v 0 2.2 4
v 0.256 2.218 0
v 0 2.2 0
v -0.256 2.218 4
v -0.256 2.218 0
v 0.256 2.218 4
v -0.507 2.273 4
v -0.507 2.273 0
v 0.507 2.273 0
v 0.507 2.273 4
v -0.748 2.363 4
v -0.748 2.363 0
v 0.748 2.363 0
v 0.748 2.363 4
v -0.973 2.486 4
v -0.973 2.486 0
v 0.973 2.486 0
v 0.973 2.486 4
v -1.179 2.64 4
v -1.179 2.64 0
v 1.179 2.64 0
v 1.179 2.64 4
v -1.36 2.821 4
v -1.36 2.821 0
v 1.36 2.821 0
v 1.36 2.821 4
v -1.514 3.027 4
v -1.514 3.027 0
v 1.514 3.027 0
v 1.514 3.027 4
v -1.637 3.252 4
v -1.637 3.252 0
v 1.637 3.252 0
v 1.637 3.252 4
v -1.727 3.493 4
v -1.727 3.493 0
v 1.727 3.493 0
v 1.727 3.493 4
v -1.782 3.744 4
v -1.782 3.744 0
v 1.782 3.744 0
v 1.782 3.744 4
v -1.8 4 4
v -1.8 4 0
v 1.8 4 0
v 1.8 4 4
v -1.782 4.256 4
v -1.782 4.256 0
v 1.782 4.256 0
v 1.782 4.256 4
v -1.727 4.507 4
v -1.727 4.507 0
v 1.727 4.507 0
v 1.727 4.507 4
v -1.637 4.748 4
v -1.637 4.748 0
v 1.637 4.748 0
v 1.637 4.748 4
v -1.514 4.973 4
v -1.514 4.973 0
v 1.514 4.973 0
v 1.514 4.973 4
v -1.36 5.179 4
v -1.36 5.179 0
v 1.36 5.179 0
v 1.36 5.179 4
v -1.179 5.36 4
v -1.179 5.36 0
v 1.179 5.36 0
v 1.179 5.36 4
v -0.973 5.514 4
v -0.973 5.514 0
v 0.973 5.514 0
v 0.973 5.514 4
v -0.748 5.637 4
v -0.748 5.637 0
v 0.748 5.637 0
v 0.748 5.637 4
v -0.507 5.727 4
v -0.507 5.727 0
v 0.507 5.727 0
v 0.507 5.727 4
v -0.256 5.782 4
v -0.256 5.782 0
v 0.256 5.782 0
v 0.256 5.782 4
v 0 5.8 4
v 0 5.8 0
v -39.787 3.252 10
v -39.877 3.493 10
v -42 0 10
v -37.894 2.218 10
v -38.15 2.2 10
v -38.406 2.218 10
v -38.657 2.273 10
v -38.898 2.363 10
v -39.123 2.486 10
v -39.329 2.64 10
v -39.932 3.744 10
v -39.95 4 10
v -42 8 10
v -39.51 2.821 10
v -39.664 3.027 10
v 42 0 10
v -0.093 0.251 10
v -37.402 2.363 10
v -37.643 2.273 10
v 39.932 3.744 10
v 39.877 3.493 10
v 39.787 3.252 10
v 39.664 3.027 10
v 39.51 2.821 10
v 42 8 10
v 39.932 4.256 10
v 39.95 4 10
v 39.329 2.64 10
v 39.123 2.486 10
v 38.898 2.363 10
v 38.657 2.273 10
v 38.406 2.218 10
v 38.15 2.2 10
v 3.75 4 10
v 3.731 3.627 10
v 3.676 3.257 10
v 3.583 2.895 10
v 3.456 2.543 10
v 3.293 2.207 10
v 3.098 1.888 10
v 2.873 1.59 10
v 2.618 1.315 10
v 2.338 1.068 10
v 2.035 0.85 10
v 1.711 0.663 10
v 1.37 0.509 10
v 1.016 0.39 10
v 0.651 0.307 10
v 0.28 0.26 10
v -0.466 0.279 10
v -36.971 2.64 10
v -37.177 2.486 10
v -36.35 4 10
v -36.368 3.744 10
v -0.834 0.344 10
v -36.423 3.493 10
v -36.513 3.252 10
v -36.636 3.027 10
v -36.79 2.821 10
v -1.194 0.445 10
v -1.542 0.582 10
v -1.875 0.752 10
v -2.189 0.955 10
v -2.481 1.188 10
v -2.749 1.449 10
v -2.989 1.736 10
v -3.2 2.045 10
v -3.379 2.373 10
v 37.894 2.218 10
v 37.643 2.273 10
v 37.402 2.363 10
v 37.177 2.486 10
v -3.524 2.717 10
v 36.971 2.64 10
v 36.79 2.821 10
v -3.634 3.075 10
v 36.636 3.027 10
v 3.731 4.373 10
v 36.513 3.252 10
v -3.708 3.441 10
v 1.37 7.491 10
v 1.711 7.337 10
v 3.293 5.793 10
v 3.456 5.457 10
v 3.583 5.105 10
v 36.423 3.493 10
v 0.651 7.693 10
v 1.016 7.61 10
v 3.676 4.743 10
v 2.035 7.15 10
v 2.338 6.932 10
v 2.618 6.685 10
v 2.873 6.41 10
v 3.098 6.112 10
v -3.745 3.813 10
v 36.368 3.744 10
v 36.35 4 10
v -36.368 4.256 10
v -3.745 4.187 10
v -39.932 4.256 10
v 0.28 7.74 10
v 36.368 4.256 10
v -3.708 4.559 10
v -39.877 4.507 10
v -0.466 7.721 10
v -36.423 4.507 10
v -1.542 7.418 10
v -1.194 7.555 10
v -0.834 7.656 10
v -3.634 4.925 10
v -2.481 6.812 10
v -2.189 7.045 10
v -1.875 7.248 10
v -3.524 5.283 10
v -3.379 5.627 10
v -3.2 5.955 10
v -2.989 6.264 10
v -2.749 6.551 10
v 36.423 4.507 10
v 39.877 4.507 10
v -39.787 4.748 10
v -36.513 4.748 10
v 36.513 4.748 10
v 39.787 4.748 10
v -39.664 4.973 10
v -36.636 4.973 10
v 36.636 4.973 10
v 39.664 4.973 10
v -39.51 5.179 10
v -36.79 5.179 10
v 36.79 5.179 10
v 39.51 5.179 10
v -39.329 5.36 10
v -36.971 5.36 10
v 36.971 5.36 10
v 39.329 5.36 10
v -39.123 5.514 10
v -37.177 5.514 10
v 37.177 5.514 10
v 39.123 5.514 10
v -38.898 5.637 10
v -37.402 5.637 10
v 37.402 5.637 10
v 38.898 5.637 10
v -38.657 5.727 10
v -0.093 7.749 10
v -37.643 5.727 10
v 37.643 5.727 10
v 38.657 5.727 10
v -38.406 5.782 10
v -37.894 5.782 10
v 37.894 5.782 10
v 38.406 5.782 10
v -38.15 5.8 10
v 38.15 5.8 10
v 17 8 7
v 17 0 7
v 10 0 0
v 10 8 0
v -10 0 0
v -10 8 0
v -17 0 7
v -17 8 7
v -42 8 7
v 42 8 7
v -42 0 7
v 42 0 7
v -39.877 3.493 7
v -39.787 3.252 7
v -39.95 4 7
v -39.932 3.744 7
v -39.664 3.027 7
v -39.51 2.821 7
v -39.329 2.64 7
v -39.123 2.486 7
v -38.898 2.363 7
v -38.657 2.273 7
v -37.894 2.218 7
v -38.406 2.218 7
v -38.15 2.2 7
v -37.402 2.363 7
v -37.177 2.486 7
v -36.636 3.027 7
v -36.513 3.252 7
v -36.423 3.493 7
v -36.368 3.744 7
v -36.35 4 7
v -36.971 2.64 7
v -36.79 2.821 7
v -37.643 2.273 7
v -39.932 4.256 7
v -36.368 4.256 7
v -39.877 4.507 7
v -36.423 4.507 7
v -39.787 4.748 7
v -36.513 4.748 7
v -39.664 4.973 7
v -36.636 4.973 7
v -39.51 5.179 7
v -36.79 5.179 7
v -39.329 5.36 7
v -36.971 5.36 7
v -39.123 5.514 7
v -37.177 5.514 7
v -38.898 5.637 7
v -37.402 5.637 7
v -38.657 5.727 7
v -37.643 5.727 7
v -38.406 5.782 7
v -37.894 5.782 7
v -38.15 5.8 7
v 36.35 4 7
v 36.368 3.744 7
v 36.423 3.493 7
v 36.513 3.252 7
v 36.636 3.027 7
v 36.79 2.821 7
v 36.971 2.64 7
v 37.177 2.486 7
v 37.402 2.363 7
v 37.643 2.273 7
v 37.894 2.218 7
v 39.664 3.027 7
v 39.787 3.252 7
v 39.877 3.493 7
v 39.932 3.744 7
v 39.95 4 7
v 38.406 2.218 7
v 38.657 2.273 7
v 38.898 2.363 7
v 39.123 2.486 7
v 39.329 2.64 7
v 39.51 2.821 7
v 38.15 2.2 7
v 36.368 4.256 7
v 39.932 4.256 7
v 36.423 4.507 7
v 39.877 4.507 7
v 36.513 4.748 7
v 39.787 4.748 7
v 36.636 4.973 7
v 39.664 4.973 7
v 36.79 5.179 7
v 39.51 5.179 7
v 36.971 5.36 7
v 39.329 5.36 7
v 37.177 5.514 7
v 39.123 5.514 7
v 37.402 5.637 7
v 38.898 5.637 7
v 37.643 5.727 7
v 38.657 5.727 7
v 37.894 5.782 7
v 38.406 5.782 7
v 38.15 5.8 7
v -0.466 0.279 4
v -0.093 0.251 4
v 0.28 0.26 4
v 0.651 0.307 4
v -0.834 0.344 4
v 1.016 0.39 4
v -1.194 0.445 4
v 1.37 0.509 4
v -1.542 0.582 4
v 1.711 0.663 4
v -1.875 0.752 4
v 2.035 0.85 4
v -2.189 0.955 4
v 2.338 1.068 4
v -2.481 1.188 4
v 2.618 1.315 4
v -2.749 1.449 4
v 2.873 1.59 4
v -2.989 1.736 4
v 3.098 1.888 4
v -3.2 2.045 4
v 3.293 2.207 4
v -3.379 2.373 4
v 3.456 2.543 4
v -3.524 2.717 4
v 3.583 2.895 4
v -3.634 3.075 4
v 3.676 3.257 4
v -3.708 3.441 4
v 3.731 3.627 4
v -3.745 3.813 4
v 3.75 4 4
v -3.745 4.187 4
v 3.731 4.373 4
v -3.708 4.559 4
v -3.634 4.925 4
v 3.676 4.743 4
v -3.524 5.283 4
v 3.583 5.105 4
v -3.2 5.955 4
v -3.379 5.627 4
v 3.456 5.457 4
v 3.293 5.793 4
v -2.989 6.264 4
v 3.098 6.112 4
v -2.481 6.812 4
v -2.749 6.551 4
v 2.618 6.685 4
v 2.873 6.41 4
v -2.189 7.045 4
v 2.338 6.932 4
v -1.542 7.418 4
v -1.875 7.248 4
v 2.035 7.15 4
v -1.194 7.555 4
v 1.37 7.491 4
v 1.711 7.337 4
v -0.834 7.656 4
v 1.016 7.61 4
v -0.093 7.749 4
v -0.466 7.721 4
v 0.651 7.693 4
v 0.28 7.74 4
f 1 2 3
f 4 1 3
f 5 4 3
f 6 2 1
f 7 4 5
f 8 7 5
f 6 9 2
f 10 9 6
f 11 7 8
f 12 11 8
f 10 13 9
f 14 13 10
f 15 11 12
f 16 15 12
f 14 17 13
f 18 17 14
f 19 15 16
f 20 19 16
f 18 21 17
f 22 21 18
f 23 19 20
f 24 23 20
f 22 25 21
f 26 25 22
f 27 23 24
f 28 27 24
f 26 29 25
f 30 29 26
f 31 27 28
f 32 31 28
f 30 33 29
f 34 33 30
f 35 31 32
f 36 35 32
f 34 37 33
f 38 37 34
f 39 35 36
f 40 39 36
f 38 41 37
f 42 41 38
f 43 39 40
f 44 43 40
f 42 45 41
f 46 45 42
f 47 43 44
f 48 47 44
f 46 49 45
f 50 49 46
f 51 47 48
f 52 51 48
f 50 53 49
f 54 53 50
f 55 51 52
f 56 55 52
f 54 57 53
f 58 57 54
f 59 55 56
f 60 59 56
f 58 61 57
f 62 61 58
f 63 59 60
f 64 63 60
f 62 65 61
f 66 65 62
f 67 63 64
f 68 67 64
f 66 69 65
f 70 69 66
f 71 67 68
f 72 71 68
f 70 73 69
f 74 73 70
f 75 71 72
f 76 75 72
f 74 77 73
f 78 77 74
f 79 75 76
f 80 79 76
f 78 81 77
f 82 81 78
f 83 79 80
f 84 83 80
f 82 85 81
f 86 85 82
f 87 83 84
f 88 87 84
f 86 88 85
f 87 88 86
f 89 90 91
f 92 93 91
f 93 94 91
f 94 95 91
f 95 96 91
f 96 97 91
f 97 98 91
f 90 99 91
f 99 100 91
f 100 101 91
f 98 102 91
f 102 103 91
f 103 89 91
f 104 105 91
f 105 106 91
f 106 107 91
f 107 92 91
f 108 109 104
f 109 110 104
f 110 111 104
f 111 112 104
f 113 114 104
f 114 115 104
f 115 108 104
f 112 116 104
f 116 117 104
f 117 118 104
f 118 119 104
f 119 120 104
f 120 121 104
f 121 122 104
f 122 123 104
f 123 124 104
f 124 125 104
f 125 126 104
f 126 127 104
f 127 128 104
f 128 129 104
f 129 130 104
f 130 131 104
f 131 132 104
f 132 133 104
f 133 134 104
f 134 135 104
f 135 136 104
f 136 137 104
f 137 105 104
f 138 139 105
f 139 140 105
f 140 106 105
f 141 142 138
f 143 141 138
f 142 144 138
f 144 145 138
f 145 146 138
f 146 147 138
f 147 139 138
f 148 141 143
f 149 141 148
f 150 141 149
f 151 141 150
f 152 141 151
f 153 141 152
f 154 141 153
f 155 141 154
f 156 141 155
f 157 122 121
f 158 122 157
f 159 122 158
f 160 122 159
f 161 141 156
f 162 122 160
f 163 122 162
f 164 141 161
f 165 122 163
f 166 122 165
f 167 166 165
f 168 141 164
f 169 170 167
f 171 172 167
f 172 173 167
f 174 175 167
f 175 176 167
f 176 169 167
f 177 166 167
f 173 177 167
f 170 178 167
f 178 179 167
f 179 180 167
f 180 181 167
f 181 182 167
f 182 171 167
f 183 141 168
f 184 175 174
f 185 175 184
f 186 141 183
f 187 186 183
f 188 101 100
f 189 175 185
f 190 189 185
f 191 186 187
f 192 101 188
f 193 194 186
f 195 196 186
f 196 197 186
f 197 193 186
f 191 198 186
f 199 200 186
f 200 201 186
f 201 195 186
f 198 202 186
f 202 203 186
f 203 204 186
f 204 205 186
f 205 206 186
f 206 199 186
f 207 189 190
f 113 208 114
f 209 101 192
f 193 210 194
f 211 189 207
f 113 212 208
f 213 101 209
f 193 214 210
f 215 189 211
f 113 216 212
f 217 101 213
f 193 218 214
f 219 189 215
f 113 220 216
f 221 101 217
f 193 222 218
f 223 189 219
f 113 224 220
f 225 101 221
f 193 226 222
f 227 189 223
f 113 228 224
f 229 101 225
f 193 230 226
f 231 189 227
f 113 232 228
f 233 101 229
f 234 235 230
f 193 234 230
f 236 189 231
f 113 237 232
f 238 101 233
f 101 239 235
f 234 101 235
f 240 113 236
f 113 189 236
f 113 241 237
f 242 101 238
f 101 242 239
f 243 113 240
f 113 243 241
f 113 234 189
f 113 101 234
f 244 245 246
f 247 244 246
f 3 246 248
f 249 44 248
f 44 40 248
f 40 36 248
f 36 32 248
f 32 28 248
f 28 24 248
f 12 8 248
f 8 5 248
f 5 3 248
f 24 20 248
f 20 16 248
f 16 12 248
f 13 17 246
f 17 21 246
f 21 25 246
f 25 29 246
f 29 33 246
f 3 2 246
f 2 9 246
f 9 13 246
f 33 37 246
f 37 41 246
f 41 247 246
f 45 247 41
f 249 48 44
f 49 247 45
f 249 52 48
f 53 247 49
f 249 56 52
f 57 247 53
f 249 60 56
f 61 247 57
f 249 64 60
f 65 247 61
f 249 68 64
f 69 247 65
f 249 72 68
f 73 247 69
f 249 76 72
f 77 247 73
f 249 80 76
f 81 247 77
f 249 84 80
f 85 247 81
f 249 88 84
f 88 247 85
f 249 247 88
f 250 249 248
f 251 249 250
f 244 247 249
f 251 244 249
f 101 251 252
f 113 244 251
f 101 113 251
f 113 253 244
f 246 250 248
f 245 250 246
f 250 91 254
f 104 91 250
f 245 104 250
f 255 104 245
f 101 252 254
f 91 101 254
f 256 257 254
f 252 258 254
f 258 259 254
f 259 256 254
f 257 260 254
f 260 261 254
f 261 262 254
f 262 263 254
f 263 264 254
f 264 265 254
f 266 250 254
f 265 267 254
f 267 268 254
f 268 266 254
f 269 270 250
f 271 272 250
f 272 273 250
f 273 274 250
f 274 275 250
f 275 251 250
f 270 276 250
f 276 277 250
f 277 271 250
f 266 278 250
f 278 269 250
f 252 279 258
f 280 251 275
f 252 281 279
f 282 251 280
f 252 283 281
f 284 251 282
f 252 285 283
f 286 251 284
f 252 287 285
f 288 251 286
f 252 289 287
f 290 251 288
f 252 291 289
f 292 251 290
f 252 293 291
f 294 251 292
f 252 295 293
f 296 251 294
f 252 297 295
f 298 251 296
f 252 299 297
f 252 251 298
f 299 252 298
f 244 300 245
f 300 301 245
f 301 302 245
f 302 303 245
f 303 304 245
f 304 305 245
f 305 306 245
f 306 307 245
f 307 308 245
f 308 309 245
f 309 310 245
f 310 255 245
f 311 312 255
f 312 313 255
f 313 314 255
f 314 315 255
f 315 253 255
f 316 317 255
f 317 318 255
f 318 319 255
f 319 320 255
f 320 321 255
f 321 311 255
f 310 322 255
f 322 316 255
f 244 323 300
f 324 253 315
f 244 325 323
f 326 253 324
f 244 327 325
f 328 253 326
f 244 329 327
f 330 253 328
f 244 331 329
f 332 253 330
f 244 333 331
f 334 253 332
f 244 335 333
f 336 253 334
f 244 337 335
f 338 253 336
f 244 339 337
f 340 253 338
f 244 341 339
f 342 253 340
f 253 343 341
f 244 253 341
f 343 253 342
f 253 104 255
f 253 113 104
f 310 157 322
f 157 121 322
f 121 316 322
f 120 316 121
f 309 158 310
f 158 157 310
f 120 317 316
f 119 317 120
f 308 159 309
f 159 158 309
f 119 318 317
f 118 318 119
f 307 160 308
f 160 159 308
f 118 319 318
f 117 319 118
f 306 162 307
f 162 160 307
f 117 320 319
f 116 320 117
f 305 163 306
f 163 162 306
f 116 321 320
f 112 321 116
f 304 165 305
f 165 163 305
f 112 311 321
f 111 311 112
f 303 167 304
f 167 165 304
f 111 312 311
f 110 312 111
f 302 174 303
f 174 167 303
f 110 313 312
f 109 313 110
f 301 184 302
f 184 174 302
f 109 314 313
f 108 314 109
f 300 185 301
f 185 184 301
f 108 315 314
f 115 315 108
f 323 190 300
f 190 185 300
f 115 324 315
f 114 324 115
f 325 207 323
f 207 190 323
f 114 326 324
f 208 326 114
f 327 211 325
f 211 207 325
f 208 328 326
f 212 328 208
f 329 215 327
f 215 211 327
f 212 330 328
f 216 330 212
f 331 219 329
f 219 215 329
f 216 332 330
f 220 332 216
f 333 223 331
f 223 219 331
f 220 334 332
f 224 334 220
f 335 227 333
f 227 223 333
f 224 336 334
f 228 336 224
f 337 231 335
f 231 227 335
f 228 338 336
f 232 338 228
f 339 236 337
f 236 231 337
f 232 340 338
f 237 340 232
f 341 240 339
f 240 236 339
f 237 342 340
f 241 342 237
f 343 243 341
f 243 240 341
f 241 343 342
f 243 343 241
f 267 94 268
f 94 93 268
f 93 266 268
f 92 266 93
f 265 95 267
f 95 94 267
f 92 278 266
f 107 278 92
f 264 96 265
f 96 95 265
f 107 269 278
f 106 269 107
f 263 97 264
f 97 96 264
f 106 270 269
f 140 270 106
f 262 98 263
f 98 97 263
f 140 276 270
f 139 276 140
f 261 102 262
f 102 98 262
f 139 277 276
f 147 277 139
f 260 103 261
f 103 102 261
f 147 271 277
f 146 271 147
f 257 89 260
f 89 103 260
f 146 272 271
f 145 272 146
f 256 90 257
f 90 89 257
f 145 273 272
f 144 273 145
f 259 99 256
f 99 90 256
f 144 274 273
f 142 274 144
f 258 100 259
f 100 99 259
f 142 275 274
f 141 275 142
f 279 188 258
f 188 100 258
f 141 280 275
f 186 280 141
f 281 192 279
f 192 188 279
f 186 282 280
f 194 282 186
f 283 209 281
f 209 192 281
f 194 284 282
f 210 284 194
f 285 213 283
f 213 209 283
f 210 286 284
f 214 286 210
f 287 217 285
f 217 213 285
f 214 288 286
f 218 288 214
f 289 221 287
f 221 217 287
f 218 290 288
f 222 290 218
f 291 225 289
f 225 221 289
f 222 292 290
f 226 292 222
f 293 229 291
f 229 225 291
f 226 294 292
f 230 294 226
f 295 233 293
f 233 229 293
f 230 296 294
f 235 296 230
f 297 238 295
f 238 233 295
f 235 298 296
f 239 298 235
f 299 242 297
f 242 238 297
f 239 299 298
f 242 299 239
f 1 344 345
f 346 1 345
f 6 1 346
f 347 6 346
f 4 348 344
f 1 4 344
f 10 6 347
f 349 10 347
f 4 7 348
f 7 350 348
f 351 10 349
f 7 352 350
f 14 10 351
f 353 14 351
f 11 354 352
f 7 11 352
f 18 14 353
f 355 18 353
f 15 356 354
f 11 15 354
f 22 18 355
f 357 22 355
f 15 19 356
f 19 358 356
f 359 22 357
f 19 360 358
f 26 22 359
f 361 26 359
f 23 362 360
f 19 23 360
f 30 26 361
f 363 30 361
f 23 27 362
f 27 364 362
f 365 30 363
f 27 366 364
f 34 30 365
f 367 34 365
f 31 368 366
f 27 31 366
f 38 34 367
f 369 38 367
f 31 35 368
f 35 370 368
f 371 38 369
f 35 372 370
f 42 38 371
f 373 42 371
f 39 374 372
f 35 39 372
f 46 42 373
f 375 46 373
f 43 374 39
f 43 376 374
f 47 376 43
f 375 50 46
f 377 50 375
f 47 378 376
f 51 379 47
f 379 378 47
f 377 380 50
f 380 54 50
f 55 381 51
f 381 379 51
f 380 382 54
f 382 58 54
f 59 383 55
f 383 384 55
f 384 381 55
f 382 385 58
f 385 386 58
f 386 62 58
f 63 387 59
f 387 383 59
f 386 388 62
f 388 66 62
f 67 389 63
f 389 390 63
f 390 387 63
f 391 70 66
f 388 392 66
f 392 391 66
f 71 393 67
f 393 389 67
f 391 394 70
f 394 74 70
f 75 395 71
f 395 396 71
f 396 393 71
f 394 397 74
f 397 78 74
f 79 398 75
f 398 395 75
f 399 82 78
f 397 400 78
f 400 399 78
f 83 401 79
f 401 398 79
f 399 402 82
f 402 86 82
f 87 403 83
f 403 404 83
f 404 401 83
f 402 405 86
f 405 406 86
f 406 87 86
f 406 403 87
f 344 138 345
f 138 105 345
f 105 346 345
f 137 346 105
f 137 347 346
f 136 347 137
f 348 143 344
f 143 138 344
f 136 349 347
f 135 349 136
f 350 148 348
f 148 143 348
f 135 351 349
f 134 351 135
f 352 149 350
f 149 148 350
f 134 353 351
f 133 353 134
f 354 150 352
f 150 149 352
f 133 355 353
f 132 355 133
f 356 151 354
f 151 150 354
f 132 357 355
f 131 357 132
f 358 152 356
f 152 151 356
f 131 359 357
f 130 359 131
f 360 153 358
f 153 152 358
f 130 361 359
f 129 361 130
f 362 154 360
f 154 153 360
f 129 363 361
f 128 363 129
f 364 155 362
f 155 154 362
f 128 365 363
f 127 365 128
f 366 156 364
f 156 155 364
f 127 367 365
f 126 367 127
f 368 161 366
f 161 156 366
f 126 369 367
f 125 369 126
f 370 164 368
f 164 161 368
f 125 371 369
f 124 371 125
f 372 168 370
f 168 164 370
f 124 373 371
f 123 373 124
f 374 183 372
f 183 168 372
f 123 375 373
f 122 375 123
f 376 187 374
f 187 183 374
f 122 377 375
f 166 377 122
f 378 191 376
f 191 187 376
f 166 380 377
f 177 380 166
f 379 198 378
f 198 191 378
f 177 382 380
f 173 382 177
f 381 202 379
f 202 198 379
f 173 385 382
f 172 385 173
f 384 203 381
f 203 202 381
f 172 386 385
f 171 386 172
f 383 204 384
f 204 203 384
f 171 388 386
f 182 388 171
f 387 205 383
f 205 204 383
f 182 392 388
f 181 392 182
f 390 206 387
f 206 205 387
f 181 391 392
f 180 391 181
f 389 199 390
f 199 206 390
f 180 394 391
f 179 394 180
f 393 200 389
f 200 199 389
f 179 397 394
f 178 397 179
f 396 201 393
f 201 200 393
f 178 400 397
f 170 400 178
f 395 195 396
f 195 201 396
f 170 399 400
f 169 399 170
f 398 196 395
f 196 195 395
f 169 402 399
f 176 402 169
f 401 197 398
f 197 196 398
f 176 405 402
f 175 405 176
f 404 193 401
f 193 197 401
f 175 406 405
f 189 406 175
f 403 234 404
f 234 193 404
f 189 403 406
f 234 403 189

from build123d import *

# Parameters (mm, degrees)
BOSS_EXTRUDE1_DEPTH = 8
SKETCH3_W           = 84
SKETCH3_H           = 8
BOSS_EXTRUDE3_DEPTH = 3
SKETCH4_R           = 1.8
CUT_EXTRUDE1_DEPTH  = 44.9089968
SKETCH5_R           = 1.8
CUT_EXTRUDE2_DEPTH  = 44.9089968
SKETCH6_R           = 3.75
CUT_EXTRUDE3_DEPTH  = 6


with BuildPart() as part:
    # Sketch2 → Boss-Extrude1 (new body)
    with BuildSketch(Plane(origin=(0, 0, 0), x_dir=(1, 0, 0), z_dir=(0, 1, 0))):
        Polygon((-10, 0), (10, 0), (20, -10), (-20, -10), align=None)
    extrude(amount=BOSS_EXTRUDE1_DEPTH)

    # Sketch3 → Boss-Extrude3 (add)
    with BuildSketch(Plane.XY.offset(10)):
        with Locations((0, 4)):
            Rectangle(SKETCH3_W, SKETCH3_H)
    extrude(amount=-BOSS_EXTRUDE3_DEPTH)

    # Sketch4 → Cut-Extrude1 (cut, through all)
    with BuildSketch(Plane.XY.offset(10)):
        with Locations((-38.15, 4)):
            Circle(SKETCH4_R)
        with Locations((38.15, 4)):
            Circle(SKETCH4_R)
    extrude(amount=-CUT_EXTRUDE1_DEPTH, mode=Mode.SUBTRACT)

    # Sketch5 → Cut-Extrude2 (cut, through all)
    with BuildSketch(Plane(origin=(0, 0, 0), x_dir=(-1, 0, 0), z_dir=(0, 0, -1))):
        with Locations((0, 4)):
            Circle(SKETCH5_R)
    extrude(amount=-CUT_EXTRUDE2_DEPTH, mode=Mode.SUBTRACT)

    # Sketch6 → Cut-Extrude3 (cut)
    with BuildSketch(Plane.XY.offset(10)):
        with Locations((0, 4)):
            Circle(SKETCH6_R)
    extrude(amount=-CUT_EXTRUDE3_DEPTH, mode=Mode.SUBTRACT)


solid = part.part
